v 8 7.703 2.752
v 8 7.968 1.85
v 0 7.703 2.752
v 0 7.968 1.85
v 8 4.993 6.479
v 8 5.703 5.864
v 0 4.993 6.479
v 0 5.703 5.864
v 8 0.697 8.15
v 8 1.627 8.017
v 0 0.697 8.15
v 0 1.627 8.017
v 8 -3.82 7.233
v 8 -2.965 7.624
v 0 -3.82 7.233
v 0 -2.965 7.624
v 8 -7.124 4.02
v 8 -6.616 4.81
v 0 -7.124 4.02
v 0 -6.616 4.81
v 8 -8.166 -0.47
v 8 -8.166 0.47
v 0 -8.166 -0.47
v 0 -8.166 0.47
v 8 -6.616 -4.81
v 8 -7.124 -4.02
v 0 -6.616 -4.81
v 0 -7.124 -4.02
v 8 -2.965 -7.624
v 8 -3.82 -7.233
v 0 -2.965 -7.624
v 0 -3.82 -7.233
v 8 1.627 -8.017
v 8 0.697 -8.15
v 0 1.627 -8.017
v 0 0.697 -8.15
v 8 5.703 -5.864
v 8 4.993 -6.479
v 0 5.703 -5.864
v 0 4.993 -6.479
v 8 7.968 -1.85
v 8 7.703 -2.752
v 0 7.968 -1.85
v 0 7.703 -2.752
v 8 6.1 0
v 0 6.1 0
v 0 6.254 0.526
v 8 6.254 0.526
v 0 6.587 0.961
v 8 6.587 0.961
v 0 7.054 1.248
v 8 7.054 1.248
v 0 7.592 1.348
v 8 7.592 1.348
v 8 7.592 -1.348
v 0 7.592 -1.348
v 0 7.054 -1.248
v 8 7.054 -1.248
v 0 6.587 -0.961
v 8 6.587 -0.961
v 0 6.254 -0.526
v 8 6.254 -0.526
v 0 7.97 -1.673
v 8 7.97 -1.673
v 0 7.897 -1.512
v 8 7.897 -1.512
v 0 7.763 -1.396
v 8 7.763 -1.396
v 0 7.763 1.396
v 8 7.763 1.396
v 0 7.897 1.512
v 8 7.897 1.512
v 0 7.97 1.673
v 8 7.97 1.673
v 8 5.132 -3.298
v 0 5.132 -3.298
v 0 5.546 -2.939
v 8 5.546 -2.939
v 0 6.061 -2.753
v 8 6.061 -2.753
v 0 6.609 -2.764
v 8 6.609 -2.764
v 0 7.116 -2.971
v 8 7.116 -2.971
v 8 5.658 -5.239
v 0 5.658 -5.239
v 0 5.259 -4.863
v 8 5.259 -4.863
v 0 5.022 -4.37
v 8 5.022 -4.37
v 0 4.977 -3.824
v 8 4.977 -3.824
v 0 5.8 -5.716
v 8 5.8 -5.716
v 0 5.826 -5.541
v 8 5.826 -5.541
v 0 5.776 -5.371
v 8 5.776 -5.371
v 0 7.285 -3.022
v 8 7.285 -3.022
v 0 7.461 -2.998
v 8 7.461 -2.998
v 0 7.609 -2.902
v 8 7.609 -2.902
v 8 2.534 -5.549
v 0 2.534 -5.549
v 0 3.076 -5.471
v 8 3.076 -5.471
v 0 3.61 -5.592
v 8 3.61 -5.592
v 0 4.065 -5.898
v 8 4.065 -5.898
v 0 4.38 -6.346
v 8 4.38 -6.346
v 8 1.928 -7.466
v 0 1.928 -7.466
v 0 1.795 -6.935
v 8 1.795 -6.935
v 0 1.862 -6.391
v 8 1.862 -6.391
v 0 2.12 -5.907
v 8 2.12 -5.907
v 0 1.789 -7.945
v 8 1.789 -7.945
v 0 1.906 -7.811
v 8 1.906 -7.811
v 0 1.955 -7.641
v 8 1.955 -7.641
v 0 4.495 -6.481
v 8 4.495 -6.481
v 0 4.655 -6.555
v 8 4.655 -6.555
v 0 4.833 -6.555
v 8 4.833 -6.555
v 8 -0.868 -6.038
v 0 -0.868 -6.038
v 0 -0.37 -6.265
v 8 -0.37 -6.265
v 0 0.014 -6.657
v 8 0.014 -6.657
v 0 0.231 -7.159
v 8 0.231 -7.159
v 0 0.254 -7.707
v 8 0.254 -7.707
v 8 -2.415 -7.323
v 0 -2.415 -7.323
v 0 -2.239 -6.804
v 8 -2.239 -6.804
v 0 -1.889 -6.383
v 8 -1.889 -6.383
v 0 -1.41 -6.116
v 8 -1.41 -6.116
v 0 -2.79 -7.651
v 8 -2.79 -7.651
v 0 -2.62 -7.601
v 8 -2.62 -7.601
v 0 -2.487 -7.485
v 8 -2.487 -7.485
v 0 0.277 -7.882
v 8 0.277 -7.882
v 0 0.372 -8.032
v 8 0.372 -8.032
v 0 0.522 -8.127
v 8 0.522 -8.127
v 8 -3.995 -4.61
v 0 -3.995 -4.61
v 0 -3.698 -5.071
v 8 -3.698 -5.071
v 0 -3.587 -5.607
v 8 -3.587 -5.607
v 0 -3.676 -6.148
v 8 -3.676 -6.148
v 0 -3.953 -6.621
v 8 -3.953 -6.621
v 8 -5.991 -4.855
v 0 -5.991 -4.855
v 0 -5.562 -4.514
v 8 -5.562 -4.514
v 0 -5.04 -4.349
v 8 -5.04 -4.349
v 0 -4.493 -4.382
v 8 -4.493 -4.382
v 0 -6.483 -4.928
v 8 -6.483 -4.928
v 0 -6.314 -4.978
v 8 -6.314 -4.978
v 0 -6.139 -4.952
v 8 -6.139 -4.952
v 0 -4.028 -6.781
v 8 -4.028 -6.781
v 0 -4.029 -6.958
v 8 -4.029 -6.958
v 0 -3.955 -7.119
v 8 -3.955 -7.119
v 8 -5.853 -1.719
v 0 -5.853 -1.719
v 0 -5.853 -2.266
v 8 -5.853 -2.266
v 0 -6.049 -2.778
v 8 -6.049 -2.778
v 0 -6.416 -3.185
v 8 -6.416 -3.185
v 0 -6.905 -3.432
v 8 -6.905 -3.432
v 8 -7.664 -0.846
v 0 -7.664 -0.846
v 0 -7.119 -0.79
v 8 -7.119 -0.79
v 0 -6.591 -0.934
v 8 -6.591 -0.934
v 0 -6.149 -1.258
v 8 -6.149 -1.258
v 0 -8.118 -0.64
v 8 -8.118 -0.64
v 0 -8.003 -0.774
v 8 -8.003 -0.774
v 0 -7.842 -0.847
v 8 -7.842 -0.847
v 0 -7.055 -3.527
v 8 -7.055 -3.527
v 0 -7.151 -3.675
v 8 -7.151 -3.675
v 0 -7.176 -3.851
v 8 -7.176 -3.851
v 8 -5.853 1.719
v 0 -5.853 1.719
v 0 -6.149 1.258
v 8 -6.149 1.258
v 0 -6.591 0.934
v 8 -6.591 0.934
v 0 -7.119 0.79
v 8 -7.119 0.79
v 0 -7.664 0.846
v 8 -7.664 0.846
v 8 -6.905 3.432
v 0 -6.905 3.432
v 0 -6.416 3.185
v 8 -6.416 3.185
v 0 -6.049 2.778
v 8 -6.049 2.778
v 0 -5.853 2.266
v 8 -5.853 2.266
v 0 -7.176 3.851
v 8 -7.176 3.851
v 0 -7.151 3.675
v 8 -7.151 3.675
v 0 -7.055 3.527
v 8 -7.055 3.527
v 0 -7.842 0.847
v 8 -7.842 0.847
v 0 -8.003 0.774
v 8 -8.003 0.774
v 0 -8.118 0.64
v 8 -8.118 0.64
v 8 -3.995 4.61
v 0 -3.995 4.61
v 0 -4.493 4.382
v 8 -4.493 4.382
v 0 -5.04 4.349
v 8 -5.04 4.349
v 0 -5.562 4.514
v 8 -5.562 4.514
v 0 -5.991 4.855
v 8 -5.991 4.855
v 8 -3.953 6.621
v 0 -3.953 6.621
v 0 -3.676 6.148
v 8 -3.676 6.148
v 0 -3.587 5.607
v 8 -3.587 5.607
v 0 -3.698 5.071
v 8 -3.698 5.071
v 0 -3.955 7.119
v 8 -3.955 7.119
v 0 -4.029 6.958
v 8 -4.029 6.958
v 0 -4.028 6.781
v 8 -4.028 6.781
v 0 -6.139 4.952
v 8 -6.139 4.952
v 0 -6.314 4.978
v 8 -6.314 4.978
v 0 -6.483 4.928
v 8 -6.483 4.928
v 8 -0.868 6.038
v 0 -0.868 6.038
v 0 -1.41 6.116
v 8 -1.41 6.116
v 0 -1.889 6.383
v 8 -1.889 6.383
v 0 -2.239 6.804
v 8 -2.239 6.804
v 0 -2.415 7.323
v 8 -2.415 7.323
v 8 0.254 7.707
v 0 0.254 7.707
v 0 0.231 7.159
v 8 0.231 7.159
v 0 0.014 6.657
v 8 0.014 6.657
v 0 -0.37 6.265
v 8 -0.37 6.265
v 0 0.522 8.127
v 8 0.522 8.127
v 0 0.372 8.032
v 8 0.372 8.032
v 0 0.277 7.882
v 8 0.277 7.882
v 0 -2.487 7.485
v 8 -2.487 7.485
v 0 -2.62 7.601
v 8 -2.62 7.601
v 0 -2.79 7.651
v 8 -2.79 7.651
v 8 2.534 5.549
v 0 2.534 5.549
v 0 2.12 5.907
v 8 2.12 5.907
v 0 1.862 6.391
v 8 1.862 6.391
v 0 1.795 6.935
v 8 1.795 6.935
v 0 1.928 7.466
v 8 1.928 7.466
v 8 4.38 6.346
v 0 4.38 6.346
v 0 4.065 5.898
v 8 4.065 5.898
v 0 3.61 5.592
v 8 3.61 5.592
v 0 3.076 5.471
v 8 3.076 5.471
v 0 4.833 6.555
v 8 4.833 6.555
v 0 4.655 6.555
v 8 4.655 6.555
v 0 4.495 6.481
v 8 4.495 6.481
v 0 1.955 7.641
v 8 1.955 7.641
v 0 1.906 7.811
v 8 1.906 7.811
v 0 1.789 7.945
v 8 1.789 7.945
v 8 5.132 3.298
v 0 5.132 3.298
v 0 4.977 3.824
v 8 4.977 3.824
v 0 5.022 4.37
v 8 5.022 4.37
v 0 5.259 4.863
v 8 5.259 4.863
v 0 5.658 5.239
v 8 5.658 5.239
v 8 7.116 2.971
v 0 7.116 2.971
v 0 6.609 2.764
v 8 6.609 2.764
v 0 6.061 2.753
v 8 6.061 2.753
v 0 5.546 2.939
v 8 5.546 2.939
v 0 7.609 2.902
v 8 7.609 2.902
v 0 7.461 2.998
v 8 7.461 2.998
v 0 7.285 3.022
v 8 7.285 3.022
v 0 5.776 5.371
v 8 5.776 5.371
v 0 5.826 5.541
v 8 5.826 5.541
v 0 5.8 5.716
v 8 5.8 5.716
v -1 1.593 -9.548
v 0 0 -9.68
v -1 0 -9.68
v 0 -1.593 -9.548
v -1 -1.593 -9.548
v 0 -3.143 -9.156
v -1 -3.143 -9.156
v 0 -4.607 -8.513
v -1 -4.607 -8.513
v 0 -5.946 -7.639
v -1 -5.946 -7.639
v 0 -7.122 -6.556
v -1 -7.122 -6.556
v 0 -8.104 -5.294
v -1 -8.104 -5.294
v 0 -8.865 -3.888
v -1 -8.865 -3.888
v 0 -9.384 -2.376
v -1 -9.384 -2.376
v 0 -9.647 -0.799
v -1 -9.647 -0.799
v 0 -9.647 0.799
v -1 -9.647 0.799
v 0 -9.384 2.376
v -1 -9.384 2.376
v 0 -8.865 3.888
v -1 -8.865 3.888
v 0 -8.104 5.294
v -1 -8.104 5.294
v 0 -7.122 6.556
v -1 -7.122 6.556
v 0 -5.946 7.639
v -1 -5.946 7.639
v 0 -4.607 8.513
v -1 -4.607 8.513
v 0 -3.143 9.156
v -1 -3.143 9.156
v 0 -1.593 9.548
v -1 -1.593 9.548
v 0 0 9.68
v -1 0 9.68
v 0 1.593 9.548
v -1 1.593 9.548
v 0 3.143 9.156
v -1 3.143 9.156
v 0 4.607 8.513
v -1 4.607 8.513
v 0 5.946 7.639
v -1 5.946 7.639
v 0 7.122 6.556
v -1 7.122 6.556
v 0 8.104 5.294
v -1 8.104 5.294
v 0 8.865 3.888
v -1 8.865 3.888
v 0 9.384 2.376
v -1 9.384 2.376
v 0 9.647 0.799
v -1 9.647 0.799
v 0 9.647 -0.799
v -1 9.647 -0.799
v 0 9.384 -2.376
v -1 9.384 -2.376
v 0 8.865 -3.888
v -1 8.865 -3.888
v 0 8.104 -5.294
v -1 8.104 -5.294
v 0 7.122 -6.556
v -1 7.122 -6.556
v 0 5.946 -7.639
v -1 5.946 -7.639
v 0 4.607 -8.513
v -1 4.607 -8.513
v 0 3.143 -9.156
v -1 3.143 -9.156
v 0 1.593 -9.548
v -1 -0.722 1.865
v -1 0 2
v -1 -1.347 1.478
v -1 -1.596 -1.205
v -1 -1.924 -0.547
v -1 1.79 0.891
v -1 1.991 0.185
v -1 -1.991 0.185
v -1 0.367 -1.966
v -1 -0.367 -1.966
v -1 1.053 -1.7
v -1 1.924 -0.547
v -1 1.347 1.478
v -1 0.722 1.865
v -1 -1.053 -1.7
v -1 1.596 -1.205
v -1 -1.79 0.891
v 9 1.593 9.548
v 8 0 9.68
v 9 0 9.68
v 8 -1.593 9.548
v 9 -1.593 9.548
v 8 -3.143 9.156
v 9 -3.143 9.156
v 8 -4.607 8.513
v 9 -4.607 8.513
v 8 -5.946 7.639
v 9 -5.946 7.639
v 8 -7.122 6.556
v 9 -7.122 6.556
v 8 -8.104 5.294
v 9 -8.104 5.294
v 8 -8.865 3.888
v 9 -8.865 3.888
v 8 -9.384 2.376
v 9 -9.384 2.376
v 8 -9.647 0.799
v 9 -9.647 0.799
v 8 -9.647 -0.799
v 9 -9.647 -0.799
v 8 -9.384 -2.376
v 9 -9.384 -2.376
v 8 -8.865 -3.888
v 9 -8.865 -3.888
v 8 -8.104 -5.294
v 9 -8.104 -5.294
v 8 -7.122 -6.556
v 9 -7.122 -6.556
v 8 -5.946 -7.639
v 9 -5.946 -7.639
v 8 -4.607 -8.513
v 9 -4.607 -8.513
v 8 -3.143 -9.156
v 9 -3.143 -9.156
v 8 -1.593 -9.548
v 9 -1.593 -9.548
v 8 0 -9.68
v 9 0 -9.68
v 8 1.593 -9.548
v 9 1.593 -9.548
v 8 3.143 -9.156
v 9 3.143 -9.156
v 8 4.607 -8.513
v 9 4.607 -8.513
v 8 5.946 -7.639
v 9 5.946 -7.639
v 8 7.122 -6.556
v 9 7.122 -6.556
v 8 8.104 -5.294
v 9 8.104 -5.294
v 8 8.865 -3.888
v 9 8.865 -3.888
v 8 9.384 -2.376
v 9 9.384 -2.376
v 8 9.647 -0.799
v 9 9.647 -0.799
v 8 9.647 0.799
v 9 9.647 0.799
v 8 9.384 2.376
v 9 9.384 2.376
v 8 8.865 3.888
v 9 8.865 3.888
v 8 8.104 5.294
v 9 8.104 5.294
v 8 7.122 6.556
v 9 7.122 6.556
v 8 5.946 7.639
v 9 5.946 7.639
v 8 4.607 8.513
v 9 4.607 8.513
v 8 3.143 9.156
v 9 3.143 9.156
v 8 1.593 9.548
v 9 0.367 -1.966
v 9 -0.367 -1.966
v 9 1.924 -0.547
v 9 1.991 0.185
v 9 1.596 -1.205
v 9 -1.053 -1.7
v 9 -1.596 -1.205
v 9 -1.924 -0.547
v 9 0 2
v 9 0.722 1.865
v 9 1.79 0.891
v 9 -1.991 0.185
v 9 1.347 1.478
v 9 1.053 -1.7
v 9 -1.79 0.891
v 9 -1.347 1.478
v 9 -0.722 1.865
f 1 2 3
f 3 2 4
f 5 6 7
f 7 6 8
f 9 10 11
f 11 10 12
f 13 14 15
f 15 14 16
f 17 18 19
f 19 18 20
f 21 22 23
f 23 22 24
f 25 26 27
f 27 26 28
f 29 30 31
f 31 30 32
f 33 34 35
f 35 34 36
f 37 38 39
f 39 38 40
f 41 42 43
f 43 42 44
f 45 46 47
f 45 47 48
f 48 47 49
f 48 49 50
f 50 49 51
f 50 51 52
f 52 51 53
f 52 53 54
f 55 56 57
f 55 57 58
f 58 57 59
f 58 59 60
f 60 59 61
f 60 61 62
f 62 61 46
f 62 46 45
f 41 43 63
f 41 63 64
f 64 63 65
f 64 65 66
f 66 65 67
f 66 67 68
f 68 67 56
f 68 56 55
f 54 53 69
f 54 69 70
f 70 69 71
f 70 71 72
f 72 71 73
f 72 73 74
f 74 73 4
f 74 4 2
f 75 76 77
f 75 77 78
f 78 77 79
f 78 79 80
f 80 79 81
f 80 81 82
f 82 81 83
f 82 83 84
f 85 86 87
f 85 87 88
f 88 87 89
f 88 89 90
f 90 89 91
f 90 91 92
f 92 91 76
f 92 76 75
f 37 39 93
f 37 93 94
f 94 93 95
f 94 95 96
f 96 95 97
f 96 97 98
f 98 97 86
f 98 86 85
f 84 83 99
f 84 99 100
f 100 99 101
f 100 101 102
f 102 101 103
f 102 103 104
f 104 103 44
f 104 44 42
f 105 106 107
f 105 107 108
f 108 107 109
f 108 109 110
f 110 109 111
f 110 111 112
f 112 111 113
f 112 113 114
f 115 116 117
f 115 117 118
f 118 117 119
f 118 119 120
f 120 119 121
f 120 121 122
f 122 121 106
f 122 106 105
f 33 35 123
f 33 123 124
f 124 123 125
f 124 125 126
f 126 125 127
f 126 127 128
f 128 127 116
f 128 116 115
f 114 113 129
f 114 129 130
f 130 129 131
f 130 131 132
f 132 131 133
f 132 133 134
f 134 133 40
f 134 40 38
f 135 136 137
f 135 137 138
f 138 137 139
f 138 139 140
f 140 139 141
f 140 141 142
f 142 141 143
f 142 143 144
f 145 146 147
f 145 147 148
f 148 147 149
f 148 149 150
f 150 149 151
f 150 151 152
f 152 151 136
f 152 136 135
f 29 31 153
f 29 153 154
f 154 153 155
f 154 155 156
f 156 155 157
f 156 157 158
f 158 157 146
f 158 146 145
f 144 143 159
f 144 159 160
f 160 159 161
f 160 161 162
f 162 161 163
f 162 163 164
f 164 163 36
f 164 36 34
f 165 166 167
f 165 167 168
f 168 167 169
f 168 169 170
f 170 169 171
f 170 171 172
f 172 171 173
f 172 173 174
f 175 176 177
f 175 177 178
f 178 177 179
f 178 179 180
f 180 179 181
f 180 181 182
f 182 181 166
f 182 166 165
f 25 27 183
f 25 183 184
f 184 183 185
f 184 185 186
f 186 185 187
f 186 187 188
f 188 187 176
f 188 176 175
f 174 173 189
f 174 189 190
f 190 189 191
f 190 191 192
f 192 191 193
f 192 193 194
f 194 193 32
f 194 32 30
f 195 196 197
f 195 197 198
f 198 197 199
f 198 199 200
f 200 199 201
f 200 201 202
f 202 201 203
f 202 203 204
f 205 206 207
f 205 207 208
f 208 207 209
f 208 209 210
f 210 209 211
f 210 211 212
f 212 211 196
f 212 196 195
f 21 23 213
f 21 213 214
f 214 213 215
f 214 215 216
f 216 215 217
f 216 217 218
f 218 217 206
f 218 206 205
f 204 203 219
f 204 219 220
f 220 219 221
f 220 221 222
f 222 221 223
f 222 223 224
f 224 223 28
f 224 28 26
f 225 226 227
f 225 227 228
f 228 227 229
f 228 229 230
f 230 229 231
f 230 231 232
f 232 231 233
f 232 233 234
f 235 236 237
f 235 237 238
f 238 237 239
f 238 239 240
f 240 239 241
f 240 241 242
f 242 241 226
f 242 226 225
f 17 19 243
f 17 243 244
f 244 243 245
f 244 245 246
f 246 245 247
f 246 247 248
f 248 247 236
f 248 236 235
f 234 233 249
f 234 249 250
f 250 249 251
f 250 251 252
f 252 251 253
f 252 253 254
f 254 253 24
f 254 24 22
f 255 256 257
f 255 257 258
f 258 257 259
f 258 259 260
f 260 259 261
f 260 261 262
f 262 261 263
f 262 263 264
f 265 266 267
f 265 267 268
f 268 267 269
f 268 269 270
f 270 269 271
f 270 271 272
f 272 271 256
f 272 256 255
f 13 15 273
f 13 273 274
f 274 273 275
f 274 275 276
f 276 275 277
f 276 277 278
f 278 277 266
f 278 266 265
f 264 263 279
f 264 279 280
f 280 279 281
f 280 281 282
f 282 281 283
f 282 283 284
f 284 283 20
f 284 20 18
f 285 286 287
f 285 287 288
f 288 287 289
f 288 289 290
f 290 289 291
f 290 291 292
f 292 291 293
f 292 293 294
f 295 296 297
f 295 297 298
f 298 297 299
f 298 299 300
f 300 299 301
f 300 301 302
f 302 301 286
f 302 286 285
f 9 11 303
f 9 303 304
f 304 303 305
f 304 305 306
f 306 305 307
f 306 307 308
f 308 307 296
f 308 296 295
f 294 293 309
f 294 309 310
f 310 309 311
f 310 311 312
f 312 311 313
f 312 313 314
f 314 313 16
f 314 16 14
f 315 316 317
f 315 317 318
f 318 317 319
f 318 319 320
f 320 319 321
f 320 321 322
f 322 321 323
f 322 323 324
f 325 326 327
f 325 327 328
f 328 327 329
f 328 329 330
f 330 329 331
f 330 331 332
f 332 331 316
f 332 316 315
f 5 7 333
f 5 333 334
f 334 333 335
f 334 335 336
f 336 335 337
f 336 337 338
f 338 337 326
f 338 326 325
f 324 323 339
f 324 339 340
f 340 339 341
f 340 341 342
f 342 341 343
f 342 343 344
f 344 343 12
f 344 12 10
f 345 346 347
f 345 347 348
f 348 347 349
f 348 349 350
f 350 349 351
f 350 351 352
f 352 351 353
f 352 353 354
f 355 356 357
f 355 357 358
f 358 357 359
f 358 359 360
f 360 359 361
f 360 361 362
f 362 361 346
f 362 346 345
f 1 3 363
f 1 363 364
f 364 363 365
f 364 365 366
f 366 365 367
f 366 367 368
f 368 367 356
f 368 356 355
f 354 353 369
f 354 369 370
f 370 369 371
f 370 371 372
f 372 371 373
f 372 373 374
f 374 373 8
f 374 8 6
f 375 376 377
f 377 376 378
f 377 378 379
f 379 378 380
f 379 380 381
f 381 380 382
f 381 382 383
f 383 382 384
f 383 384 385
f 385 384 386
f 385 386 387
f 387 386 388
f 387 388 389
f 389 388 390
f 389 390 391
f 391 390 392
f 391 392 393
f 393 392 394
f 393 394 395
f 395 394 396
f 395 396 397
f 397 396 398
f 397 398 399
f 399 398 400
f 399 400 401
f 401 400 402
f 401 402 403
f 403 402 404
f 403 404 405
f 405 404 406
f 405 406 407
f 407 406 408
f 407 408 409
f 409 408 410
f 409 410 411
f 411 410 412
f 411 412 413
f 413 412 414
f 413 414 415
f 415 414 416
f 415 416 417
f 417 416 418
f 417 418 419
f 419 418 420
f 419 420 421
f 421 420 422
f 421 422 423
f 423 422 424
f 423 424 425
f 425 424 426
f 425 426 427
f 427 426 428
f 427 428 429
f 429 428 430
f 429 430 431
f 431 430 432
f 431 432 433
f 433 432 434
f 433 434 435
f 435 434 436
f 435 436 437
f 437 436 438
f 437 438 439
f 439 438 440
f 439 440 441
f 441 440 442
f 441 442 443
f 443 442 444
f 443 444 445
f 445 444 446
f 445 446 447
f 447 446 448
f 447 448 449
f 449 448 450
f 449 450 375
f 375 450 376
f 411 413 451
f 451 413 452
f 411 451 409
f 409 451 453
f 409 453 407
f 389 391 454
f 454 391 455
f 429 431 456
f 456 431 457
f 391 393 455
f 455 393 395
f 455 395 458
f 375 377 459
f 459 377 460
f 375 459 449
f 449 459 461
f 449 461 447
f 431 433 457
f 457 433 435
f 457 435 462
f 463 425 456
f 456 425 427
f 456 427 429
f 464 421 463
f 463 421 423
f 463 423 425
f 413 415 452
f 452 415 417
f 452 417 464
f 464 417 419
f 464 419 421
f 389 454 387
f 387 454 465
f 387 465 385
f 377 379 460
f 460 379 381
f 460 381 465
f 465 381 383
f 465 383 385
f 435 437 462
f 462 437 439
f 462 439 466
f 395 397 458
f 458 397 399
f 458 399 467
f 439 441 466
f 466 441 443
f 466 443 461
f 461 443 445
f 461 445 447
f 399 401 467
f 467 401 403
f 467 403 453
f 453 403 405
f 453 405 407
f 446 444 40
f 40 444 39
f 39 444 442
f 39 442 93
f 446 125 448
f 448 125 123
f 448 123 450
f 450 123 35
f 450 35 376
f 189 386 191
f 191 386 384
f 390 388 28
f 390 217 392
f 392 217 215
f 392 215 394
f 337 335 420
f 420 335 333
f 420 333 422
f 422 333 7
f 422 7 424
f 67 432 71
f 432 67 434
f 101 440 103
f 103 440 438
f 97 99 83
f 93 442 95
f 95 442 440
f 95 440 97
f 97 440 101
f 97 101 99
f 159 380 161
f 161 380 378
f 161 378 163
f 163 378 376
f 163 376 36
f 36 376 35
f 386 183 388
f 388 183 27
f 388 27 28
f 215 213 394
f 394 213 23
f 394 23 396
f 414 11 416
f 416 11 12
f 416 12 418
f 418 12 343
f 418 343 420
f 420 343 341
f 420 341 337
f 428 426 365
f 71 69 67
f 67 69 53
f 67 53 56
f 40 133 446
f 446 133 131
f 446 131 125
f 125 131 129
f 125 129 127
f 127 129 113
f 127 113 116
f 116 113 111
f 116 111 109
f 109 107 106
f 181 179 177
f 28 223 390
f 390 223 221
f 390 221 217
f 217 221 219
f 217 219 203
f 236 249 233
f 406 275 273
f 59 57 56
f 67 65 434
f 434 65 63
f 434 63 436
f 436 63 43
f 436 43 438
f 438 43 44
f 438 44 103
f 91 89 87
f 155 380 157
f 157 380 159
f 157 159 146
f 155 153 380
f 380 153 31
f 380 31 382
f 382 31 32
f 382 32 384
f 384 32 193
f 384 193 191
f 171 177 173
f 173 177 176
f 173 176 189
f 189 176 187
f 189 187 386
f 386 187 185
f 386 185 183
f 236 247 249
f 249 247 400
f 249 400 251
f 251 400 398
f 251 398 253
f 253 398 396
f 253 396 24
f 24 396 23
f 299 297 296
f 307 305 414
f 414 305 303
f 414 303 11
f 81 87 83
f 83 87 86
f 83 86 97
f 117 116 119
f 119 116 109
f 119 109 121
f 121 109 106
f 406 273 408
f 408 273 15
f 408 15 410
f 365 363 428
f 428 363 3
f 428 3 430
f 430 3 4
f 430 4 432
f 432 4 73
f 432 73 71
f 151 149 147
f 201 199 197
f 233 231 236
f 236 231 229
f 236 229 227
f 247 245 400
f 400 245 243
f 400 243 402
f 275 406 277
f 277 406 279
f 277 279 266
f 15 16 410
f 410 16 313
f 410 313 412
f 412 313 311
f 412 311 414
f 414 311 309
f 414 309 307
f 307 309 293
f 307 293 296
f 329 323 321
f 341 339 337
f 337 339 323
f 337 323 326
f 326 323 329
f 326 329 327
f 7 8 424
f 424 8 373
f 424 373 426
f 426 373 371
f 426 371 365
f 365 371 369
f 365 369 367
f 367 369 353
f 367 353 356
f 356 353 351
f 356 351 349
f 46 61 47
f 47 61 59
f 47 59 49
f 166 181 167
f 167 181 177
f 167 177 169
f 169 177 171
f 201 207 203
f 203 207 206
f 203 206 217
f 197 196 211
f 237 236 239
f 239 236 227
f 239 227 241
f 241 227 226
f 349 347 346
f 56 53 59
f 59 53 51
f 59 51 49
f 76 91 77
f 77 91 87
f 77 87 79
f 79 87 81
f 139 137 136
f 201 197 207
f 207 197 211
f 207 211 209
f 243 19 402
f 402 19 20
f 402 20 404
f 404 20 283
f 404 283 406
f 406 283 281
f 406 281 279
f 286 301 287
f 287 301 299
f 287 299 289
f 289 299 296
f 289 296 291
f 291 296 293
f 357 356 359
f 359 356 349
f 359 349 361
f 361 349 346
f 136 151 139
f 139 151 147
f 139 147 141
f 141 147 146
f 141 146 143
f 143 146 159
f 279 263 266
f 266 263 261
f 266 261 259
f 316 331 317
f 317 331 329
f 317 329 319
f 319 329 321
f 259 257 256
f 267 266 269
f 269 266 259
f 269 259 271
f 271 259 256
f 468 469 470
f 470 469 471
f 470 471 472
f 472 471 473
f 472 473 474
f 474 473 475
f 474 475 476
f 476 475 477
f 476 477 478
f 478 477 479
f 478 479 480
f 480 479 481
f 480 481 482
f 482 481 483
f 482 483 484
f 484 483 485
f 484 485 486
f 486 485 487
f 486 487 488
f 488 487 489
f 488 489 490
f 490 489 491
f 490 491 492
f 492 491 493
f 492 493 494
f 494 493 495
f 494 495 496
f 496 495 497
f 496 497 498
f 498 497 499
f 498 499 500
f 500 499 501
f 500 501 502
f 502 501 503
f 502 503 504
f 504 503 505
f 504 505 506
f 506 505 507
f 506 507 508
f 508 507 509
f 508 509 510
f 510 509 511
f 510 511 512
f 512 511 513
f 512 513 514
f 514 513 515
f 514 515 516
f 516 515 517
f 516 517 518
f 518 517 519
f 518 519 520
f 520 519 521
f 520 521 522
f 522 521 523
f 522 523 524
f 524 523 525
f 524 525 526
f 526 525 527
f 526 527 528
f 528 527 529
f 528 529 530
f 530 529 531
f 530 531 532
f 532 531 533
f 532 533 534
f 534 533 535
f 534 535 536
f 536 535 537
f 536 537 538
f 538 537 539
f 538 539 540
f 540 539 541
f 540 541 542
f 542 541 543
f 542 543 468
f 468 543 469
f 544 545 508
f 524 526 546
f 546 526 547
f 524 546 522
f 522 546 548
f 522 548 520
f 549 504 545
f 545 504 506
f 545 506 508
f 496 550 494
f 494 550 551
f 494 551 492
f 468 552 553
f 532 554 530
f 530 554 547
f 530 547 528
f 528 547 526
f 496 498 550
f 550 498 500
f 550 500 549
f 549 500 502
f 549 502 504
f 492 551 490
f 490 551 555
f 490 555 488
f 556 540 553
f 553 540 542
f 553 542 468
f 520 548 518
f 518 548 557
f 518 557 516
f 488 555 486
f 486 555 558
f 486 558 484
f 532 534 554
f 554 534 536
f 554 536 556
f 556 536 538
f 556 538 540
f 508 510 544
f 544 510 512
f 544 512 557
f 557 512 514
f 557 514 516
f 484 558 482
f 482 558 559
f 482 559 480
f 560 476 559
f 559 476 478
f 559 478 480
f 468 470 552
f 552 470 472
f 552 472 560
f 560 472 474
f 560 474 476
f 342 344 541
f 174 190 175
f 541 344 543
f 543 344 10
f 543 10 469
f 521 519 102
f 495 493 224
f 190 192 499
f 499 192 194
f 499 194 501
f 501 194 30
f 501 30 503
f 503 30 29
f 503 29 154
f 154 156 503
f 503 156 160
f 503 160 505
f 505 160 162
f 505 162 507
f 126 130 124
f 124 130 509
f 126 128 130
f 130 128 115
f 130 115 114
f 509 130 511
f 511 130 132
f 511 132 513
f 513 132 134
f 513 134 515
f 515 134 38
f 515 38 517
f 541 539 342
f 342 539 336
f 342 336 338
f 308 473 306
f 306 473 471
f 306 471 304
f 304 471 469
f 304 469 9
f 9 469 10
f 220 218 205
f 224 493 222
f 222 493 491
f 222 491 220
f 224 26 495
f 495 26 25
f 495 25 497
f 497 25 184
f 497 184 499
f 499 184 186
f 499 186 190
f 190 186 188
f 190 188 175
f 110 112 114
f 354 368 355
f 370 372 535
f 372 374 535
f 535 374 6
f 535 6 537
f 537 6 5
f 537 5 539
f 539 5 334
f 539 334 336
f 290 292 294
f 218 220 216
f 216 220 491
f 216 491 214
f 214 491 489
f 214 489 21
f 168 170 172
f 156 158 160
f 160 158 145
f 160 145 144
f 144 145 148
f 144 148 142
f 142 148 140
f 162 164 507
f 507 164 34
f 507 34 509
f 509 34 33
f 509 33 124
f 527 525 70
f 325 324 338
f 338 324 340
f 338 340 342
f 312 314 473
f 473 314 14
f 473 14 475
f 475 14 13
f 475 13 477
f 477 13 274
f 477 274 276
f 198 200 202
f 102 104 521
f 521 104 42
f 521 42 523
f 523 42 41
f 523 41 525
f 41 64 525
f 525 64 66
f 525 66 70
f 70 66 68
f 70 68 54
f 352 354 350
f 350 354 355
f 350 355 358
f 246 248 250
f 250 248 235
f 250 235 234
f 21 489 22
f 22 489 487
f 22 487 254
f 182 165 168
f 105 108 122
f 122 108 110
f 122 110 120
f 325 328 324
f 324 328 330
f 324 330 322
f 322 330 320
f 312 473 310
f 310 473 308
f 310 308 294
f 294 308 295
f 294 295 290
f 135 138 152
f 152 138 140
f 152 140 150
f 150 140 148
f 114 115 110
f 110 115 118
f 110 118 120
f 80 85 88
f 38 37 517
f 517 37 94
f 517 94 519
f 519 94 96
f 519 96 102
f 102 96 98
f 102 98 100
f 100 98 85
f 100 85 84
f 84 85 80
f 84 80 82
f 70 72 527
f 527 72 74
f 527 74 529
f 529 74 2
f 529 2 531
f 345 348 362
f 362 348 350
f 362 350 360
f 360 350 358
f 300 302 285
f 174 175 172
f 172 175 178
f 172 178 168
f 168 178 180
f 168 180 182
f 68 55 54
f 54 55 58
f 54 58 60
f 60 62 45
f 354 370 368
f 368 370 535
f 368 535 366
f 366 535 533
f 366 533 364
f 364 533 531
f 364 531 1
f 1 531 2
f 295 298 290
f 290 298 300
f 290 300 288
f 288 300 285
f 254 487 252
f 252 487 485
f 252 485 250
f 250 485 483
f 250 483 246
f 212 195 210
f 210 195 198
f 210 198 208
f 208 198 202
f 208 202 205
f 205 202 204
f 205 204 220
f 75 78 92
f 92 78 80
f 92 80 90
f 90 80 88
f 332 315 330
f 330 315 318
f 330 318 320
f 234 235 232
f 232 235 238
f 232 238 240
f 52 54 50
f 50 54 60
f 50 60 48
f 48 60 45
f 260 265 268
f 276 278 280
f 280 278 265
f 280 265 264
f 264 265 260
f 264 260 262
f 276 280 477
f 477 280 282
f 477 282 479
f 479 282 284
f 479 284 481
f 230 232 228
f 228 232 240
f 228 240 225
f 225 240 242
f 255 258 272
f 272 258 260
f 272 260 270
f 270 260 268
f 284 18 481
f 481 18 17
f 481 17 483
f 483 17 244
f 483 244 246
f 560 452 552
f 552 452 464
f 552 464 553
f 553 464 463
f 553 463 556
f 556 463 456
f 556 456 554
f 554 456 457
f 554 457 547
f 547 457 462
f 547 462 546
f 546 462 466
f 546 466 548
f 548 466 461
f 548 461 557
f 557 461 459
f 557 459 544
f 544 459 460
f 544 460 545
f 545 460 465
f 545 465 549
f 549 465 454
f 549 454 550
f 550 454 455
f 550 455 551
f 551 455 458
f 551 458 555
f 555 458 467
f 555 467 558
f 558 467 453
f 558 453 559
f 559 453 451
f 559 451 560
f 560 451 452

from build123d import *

# Parameters (mm, degrees)
SKETCH1_R           = 8.18
BOSS_EXTRUDE1_DEPTH = 8
CUT_EXTRUDE1_DEPTH  = 9
CIRPATTERN1_COUNT   = 11
SKETCH4_R           = 9.68
BOSS_EXTRUDE2_DEPTH = 1
SKETCH6_R           = 2
CUT_EXTRUDE2_DEPTH  = 11


with BuildPart() as part:
    # Sketch1 → Boss-Extrude1 (new body)
    with BuildSketch(Plane(origin=(0, 0, 0), x_dir=(0, 0, -1), z_dir=(1, 0, 0))):
        Circle(SKETCH1_R)
    extrude(amount=BOSS_EXTRUDE1_DEPTH)

    # Sketch2 → Cut-Extrude1 (cut, through all)
    with BuildSketch(Plane(origin=(0, 0, 0), x_dir=(0, 0, -1), z_dir=(1, 0, 0))):
        with BuildLine():
            ThreePointArc((0, 6.1), (0.961072859, 6.586806473), (1.347953386, 7.592274046))
            ThreePointArc((1.347953386, 7.592274046), (1.511589464, 7.896914613), (1.85, 7.96805497))
            ThreePointArc((1.85, 7.96805497), (0, 8.18), (-1.85, 7.96805497))
            ThreePointArc((-1.85, 7.96805497), (-1.511589464, 7.896914613), (-1.347953386, 7.592274046))
            ThreePointArc((-1.347953386, 7.592274046), (-0.961072859, 6.586806473), (0, 6.1))
        make_face()
    cut_extrude1 = extrude(amount=CUT_EXTRUDE1_DEPTH, mode=Mode.SUBTRACT)

    # CirPattern1: Cut-Extrude1 ×11 about axis
    cirpattern1_axis = Axis((0, 0, 0), (1, 0, 0))
    for i in range(1, CIRPATTERN1_COUNT):
        add(cut_extrude1.rotate(cirpattern1_axis, i * 360 / CIRPATTERN1_COUNT), mode=Mode.SUBTRACT)

    # Sketch4 → Boss-Extrude2 (add)
    with BuildSketch(Plane.ZY):
        Circle(SKETCH4_R)
    boss_extrude2 = extrude(amount=BOSS_EXTRUDE2_DEPTH)

    # Mirror1: Boss-Extrude2 across plane
    add(boss_extrude2.mirror(Plane.ZY.offset(-4)))

    # Sketch6 → Cut-Extrude2 (cut, through all)
    with BuildSketch(Plane.ZY.offset(1)):
        Circle(SKETCH6_R)
    extrude(amount=-CUT_EXTRUDE2_DEPTH, mode=Mode.SUBTRACT)


solid = part.part
